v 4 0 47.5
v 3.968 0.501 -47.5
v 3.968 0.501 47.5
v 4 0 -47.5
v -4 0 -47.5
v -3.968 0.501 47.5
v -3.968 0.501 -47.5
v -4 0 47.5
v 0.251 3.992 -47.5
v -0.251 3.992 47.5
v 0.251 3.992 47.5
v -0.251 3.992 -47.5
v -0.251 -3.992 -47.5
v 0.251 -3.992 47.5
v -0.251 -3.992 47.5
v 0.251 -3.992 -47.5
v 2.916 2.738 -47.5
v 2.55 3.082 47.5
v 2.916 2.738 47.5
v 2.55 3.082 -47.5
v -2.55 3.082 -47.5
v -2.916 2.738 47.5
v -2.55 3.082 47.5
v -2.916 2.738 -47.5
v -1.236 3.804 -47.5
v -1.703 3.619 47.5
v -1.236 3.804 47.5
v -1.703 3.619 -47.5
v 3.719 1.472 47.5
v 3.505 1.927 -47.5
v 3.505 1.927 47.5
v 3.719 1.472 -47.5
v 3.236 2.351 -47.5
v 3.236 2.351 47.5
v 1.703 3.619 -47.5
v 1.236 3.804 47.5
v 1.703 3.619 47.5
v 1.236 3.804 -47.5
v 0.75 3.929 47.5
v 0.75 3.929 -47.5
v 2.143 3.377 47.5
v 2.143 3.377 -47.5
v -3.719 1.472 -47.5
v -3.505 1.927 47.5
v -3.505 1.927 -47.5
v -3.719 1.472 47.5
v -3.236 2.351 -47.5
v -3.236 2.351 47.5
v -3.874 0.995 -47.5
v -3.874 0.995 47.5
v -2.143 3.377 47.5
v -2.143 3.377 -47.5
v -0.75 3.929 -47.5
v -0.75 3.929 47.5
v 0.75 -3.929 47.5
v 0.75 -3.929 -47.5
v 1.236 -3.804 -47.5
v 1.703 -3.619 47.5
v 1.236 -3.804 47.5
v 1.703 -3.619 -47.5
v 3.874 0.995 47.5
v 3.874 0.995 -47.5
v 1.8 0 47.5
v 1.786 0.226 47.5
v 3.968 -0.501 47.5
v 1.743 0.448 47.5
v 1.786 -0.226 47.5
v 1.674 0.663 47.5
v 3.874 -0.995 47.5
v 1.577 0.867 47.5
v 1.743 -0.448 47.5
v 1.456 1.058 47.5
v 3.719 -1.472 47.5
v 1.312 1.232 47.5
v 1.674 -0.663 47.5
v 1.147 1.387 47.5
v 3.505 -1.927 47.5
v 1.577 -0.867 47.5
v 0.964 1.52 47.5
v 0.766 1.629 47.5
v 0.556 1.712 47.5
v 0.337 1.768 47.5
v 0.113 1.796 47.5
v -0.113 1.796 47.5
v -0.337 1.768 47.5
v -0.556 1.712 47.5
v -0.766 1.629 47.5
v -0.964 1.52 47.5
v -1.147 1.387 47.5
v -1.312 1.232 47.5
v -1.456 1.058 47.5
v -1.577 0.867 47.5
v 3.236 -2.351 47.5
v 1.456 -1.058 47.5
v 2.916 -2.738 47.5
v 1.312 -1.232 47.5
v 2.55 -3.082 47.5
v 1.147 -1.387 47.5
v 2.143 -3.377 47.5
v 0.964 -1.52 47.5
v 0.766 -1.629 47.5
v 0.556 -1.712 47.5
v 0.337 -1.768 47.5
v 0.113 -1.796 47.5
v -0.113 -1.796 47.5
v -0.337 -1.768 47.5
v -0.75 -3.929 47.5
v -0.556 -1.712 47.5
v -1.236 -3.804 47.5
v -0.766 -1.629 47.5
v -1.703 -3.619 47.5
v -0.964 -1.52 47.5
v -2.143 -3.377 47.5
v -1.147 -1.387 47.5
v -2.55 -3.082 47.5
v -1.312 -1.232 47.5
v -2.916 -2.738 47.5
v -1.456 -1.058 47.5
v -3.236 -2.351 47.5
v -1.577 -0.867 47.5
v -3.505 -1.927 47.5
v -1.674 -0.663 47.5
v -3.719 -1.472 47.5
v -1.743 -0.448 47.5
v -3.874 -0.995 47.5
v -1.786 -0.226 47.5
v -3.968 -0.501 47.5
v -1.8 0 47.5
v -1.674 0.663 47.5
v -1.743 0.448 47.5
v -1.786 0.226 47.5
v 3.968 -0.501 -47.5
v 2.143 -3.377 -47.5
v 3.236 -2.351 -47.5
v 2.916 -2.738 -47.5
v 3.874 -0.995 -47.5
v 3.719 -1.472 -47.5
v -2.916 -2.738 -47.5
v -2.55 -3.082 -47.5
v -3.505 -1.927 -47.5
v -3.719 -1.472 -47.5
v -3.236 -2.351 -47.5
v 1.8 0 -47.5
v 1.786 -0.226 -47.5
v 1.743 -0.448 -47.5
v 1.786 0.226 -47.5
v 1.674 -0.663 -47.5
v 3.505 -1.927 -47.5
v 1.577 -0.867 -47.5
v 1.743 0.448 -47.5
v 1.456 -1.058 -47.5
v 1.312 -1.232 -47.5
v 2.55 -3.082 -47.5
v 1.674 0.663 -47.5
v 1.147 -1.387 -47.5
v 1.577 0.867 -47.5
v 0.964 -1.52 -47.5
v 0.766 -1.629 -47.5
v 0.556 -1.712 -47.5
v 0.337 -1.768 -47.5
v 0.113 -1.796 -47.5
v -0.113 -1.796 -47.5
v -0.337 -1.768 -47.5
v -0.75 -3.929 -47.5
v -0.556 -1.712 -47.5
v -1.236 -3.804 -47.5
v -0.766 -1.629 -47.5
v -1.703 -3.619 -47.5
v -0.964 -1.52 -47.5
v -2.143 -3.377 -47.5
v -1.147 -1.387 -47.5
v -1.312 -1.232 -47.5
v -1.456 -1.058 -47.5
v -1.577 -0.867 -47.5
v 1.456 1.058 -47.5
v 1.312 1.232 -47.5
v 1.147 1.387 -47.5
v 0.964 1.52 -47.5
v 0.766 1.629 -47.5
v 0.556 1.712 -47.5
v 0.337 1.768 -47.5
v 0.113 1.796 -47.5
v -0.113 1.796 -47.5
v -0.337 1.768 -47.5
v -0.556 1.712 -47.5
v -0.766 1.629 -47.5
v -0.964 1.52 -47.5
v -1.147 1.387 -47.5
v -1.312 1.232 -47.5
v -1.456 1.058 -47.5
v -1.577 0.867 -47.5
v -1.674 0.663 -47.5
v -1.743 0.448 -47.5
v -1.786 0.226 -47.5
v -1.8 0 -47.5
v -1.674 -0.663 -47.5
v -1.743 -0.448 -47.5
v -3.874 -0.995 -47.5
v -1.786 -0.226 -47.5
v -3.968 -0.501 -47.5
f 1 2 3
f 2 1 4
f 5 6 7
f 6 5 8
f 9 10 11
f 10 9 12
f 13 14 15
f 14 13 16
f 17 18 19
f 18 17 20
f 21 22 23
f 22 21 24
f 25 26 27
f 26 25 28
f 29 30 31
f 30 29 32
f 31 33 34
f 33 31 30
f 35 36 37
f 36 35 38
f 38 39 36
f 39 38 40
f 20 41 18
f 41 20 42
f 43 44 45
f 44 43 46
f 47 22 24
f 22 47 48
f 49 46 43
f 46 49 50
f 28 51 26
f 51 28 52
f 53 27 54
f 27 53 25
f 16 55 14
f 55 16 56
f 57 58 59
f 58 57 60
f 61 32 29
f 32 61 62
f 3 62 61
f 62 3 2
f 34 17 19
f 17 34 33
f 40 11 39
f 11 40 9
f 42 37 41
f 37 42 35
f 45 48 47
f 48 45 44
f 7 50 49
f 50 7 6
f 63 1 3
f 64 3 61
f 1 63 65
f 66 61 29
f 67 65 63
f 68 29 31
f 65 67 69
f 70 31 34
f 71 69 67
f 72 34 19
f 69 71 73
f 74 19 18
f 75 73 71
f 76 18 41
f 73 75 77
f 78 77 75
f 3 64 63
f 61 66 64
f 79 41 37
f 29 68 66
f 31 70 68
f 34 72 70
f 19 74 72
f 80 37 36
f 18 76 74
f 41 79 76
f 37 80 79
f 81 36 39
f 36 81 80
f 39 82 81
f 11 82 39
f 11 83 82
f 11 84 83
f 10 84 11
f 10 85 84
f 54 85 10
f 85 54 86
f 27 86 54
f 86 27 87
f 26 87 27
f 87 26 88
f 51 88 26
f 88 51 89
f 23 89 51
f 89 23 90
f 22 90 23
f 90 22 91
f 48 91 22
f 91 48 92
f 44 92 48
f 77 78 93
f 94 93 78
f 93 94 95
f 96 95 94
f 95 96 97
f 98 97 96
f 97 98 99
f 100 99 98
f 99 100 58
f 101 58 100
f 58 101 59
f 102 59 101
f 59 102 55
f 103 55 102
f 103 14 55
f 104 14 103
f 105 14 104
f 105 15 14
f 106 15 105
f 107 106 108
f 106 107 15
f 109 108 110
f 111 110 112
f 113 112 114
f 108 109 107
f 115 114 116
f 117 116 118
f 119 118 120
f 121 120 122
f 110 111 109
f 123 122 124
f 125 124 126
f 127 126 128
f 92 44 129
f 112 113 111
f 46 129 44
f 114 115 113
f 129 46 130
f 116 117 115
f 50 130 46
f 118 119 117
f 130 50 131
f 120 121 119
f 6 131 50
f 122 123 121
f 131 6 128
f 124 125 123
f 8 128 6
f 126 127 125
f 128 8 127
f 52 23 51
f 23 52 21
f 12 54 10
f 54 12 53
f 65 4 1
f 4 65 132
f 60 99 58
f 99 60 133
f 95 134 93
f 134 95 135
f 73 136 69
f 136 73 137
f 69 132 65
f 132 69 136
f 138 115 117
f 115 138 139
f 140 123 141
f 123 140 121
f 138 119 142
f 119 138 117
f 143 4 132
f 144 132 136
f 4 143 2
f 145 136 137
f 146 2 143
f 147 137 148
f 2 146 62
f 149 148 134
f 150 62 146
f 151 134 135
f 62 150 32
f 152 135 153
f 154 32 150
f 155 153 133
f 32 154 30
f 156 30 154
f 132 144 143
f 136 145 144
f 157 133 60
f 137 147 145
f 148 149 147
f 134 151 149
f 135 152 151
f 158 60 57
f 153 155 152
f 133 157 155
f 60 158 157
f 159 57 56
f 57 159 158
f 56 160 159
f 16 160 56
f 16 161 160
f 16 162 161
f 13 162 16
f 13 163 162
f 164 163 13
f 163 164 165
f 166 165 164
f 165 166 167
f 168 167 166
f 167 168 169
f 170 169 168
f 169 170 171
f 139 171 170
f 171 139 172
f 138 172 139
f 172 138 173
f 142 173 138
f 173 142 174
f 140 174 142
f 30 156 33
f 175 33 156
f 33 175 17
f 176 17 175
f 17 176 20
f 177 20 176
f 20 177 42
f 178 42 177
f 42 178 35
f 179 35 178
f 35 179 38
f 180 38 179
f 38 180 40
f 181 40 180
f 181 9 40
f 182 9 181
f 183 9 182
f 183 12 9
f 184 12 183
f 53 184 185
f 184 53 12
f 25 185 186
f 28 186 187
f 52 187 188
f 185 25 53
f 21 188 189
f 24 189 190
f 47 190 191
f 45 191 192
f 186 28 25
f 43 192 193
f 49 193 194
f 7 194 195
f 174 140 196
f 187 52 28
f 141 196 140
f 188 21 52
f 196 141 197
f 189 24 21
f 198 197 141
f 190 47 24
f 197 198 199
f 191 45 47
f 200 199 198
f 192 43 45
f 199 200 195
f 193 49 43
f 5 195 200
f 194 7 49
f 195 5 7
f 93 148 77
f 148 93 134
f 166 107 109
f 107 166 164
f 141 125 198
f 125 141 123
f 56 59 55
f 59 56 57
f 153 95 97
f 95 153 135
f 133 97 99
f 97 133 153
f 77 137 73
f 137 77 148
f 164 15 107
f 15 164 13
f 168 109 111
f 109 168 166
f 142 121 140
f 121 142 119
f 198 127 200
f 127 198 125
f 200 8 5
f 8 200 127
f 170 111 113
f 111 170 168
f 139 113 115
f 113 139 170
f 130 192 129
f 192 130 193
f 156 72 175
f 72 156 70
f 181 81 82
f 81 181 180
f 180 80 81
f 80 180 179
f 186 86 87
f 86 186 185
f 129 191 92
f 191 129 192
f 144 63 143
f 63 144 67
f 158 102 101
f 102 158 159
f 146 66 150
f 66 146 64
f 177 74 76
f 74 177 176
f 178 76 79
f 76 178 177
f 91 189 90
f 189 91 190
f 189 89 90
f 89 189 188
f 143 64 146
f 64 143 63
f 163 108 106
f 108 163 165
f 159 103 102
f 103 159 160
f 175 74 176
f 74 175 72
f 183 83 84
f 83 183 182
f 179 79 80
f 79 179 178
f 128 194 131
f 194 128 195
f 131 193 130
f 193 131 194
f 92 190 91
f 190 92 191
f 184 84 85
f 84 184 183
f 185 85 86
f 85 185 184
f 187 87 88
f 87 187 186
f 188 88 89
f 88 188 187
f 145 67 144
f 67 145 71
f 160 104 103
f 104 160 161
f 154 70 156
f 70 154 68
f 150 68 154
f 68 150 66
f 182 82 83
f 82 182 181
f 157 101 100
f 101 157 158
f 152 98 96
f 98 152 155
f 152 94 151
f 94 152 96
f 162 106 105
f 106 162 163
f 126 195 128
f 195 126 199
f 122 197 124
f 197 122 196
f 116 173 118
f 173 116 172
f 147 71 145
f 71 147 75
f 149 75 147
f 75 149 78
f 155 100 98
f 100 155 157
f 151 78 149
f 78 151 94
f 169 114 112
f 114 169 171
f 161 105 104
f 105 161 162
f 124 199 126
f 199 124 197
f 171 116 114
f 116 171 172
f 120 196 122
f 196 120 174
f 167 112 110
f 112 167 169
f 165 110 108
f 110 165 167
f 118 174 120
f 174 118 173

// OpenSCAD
$fn = 50;


difference() {
	union() {
		translate(v = [0, 0, -47.5000000000]) {
			cylinder(h = 95, r = 4.0000000000);
		}
	}
	union() {
		translate(v = [0, 0, -100.0000000000]) {
			cylinder(h = 200, r = 1.8000000000);
		}
	}
}
